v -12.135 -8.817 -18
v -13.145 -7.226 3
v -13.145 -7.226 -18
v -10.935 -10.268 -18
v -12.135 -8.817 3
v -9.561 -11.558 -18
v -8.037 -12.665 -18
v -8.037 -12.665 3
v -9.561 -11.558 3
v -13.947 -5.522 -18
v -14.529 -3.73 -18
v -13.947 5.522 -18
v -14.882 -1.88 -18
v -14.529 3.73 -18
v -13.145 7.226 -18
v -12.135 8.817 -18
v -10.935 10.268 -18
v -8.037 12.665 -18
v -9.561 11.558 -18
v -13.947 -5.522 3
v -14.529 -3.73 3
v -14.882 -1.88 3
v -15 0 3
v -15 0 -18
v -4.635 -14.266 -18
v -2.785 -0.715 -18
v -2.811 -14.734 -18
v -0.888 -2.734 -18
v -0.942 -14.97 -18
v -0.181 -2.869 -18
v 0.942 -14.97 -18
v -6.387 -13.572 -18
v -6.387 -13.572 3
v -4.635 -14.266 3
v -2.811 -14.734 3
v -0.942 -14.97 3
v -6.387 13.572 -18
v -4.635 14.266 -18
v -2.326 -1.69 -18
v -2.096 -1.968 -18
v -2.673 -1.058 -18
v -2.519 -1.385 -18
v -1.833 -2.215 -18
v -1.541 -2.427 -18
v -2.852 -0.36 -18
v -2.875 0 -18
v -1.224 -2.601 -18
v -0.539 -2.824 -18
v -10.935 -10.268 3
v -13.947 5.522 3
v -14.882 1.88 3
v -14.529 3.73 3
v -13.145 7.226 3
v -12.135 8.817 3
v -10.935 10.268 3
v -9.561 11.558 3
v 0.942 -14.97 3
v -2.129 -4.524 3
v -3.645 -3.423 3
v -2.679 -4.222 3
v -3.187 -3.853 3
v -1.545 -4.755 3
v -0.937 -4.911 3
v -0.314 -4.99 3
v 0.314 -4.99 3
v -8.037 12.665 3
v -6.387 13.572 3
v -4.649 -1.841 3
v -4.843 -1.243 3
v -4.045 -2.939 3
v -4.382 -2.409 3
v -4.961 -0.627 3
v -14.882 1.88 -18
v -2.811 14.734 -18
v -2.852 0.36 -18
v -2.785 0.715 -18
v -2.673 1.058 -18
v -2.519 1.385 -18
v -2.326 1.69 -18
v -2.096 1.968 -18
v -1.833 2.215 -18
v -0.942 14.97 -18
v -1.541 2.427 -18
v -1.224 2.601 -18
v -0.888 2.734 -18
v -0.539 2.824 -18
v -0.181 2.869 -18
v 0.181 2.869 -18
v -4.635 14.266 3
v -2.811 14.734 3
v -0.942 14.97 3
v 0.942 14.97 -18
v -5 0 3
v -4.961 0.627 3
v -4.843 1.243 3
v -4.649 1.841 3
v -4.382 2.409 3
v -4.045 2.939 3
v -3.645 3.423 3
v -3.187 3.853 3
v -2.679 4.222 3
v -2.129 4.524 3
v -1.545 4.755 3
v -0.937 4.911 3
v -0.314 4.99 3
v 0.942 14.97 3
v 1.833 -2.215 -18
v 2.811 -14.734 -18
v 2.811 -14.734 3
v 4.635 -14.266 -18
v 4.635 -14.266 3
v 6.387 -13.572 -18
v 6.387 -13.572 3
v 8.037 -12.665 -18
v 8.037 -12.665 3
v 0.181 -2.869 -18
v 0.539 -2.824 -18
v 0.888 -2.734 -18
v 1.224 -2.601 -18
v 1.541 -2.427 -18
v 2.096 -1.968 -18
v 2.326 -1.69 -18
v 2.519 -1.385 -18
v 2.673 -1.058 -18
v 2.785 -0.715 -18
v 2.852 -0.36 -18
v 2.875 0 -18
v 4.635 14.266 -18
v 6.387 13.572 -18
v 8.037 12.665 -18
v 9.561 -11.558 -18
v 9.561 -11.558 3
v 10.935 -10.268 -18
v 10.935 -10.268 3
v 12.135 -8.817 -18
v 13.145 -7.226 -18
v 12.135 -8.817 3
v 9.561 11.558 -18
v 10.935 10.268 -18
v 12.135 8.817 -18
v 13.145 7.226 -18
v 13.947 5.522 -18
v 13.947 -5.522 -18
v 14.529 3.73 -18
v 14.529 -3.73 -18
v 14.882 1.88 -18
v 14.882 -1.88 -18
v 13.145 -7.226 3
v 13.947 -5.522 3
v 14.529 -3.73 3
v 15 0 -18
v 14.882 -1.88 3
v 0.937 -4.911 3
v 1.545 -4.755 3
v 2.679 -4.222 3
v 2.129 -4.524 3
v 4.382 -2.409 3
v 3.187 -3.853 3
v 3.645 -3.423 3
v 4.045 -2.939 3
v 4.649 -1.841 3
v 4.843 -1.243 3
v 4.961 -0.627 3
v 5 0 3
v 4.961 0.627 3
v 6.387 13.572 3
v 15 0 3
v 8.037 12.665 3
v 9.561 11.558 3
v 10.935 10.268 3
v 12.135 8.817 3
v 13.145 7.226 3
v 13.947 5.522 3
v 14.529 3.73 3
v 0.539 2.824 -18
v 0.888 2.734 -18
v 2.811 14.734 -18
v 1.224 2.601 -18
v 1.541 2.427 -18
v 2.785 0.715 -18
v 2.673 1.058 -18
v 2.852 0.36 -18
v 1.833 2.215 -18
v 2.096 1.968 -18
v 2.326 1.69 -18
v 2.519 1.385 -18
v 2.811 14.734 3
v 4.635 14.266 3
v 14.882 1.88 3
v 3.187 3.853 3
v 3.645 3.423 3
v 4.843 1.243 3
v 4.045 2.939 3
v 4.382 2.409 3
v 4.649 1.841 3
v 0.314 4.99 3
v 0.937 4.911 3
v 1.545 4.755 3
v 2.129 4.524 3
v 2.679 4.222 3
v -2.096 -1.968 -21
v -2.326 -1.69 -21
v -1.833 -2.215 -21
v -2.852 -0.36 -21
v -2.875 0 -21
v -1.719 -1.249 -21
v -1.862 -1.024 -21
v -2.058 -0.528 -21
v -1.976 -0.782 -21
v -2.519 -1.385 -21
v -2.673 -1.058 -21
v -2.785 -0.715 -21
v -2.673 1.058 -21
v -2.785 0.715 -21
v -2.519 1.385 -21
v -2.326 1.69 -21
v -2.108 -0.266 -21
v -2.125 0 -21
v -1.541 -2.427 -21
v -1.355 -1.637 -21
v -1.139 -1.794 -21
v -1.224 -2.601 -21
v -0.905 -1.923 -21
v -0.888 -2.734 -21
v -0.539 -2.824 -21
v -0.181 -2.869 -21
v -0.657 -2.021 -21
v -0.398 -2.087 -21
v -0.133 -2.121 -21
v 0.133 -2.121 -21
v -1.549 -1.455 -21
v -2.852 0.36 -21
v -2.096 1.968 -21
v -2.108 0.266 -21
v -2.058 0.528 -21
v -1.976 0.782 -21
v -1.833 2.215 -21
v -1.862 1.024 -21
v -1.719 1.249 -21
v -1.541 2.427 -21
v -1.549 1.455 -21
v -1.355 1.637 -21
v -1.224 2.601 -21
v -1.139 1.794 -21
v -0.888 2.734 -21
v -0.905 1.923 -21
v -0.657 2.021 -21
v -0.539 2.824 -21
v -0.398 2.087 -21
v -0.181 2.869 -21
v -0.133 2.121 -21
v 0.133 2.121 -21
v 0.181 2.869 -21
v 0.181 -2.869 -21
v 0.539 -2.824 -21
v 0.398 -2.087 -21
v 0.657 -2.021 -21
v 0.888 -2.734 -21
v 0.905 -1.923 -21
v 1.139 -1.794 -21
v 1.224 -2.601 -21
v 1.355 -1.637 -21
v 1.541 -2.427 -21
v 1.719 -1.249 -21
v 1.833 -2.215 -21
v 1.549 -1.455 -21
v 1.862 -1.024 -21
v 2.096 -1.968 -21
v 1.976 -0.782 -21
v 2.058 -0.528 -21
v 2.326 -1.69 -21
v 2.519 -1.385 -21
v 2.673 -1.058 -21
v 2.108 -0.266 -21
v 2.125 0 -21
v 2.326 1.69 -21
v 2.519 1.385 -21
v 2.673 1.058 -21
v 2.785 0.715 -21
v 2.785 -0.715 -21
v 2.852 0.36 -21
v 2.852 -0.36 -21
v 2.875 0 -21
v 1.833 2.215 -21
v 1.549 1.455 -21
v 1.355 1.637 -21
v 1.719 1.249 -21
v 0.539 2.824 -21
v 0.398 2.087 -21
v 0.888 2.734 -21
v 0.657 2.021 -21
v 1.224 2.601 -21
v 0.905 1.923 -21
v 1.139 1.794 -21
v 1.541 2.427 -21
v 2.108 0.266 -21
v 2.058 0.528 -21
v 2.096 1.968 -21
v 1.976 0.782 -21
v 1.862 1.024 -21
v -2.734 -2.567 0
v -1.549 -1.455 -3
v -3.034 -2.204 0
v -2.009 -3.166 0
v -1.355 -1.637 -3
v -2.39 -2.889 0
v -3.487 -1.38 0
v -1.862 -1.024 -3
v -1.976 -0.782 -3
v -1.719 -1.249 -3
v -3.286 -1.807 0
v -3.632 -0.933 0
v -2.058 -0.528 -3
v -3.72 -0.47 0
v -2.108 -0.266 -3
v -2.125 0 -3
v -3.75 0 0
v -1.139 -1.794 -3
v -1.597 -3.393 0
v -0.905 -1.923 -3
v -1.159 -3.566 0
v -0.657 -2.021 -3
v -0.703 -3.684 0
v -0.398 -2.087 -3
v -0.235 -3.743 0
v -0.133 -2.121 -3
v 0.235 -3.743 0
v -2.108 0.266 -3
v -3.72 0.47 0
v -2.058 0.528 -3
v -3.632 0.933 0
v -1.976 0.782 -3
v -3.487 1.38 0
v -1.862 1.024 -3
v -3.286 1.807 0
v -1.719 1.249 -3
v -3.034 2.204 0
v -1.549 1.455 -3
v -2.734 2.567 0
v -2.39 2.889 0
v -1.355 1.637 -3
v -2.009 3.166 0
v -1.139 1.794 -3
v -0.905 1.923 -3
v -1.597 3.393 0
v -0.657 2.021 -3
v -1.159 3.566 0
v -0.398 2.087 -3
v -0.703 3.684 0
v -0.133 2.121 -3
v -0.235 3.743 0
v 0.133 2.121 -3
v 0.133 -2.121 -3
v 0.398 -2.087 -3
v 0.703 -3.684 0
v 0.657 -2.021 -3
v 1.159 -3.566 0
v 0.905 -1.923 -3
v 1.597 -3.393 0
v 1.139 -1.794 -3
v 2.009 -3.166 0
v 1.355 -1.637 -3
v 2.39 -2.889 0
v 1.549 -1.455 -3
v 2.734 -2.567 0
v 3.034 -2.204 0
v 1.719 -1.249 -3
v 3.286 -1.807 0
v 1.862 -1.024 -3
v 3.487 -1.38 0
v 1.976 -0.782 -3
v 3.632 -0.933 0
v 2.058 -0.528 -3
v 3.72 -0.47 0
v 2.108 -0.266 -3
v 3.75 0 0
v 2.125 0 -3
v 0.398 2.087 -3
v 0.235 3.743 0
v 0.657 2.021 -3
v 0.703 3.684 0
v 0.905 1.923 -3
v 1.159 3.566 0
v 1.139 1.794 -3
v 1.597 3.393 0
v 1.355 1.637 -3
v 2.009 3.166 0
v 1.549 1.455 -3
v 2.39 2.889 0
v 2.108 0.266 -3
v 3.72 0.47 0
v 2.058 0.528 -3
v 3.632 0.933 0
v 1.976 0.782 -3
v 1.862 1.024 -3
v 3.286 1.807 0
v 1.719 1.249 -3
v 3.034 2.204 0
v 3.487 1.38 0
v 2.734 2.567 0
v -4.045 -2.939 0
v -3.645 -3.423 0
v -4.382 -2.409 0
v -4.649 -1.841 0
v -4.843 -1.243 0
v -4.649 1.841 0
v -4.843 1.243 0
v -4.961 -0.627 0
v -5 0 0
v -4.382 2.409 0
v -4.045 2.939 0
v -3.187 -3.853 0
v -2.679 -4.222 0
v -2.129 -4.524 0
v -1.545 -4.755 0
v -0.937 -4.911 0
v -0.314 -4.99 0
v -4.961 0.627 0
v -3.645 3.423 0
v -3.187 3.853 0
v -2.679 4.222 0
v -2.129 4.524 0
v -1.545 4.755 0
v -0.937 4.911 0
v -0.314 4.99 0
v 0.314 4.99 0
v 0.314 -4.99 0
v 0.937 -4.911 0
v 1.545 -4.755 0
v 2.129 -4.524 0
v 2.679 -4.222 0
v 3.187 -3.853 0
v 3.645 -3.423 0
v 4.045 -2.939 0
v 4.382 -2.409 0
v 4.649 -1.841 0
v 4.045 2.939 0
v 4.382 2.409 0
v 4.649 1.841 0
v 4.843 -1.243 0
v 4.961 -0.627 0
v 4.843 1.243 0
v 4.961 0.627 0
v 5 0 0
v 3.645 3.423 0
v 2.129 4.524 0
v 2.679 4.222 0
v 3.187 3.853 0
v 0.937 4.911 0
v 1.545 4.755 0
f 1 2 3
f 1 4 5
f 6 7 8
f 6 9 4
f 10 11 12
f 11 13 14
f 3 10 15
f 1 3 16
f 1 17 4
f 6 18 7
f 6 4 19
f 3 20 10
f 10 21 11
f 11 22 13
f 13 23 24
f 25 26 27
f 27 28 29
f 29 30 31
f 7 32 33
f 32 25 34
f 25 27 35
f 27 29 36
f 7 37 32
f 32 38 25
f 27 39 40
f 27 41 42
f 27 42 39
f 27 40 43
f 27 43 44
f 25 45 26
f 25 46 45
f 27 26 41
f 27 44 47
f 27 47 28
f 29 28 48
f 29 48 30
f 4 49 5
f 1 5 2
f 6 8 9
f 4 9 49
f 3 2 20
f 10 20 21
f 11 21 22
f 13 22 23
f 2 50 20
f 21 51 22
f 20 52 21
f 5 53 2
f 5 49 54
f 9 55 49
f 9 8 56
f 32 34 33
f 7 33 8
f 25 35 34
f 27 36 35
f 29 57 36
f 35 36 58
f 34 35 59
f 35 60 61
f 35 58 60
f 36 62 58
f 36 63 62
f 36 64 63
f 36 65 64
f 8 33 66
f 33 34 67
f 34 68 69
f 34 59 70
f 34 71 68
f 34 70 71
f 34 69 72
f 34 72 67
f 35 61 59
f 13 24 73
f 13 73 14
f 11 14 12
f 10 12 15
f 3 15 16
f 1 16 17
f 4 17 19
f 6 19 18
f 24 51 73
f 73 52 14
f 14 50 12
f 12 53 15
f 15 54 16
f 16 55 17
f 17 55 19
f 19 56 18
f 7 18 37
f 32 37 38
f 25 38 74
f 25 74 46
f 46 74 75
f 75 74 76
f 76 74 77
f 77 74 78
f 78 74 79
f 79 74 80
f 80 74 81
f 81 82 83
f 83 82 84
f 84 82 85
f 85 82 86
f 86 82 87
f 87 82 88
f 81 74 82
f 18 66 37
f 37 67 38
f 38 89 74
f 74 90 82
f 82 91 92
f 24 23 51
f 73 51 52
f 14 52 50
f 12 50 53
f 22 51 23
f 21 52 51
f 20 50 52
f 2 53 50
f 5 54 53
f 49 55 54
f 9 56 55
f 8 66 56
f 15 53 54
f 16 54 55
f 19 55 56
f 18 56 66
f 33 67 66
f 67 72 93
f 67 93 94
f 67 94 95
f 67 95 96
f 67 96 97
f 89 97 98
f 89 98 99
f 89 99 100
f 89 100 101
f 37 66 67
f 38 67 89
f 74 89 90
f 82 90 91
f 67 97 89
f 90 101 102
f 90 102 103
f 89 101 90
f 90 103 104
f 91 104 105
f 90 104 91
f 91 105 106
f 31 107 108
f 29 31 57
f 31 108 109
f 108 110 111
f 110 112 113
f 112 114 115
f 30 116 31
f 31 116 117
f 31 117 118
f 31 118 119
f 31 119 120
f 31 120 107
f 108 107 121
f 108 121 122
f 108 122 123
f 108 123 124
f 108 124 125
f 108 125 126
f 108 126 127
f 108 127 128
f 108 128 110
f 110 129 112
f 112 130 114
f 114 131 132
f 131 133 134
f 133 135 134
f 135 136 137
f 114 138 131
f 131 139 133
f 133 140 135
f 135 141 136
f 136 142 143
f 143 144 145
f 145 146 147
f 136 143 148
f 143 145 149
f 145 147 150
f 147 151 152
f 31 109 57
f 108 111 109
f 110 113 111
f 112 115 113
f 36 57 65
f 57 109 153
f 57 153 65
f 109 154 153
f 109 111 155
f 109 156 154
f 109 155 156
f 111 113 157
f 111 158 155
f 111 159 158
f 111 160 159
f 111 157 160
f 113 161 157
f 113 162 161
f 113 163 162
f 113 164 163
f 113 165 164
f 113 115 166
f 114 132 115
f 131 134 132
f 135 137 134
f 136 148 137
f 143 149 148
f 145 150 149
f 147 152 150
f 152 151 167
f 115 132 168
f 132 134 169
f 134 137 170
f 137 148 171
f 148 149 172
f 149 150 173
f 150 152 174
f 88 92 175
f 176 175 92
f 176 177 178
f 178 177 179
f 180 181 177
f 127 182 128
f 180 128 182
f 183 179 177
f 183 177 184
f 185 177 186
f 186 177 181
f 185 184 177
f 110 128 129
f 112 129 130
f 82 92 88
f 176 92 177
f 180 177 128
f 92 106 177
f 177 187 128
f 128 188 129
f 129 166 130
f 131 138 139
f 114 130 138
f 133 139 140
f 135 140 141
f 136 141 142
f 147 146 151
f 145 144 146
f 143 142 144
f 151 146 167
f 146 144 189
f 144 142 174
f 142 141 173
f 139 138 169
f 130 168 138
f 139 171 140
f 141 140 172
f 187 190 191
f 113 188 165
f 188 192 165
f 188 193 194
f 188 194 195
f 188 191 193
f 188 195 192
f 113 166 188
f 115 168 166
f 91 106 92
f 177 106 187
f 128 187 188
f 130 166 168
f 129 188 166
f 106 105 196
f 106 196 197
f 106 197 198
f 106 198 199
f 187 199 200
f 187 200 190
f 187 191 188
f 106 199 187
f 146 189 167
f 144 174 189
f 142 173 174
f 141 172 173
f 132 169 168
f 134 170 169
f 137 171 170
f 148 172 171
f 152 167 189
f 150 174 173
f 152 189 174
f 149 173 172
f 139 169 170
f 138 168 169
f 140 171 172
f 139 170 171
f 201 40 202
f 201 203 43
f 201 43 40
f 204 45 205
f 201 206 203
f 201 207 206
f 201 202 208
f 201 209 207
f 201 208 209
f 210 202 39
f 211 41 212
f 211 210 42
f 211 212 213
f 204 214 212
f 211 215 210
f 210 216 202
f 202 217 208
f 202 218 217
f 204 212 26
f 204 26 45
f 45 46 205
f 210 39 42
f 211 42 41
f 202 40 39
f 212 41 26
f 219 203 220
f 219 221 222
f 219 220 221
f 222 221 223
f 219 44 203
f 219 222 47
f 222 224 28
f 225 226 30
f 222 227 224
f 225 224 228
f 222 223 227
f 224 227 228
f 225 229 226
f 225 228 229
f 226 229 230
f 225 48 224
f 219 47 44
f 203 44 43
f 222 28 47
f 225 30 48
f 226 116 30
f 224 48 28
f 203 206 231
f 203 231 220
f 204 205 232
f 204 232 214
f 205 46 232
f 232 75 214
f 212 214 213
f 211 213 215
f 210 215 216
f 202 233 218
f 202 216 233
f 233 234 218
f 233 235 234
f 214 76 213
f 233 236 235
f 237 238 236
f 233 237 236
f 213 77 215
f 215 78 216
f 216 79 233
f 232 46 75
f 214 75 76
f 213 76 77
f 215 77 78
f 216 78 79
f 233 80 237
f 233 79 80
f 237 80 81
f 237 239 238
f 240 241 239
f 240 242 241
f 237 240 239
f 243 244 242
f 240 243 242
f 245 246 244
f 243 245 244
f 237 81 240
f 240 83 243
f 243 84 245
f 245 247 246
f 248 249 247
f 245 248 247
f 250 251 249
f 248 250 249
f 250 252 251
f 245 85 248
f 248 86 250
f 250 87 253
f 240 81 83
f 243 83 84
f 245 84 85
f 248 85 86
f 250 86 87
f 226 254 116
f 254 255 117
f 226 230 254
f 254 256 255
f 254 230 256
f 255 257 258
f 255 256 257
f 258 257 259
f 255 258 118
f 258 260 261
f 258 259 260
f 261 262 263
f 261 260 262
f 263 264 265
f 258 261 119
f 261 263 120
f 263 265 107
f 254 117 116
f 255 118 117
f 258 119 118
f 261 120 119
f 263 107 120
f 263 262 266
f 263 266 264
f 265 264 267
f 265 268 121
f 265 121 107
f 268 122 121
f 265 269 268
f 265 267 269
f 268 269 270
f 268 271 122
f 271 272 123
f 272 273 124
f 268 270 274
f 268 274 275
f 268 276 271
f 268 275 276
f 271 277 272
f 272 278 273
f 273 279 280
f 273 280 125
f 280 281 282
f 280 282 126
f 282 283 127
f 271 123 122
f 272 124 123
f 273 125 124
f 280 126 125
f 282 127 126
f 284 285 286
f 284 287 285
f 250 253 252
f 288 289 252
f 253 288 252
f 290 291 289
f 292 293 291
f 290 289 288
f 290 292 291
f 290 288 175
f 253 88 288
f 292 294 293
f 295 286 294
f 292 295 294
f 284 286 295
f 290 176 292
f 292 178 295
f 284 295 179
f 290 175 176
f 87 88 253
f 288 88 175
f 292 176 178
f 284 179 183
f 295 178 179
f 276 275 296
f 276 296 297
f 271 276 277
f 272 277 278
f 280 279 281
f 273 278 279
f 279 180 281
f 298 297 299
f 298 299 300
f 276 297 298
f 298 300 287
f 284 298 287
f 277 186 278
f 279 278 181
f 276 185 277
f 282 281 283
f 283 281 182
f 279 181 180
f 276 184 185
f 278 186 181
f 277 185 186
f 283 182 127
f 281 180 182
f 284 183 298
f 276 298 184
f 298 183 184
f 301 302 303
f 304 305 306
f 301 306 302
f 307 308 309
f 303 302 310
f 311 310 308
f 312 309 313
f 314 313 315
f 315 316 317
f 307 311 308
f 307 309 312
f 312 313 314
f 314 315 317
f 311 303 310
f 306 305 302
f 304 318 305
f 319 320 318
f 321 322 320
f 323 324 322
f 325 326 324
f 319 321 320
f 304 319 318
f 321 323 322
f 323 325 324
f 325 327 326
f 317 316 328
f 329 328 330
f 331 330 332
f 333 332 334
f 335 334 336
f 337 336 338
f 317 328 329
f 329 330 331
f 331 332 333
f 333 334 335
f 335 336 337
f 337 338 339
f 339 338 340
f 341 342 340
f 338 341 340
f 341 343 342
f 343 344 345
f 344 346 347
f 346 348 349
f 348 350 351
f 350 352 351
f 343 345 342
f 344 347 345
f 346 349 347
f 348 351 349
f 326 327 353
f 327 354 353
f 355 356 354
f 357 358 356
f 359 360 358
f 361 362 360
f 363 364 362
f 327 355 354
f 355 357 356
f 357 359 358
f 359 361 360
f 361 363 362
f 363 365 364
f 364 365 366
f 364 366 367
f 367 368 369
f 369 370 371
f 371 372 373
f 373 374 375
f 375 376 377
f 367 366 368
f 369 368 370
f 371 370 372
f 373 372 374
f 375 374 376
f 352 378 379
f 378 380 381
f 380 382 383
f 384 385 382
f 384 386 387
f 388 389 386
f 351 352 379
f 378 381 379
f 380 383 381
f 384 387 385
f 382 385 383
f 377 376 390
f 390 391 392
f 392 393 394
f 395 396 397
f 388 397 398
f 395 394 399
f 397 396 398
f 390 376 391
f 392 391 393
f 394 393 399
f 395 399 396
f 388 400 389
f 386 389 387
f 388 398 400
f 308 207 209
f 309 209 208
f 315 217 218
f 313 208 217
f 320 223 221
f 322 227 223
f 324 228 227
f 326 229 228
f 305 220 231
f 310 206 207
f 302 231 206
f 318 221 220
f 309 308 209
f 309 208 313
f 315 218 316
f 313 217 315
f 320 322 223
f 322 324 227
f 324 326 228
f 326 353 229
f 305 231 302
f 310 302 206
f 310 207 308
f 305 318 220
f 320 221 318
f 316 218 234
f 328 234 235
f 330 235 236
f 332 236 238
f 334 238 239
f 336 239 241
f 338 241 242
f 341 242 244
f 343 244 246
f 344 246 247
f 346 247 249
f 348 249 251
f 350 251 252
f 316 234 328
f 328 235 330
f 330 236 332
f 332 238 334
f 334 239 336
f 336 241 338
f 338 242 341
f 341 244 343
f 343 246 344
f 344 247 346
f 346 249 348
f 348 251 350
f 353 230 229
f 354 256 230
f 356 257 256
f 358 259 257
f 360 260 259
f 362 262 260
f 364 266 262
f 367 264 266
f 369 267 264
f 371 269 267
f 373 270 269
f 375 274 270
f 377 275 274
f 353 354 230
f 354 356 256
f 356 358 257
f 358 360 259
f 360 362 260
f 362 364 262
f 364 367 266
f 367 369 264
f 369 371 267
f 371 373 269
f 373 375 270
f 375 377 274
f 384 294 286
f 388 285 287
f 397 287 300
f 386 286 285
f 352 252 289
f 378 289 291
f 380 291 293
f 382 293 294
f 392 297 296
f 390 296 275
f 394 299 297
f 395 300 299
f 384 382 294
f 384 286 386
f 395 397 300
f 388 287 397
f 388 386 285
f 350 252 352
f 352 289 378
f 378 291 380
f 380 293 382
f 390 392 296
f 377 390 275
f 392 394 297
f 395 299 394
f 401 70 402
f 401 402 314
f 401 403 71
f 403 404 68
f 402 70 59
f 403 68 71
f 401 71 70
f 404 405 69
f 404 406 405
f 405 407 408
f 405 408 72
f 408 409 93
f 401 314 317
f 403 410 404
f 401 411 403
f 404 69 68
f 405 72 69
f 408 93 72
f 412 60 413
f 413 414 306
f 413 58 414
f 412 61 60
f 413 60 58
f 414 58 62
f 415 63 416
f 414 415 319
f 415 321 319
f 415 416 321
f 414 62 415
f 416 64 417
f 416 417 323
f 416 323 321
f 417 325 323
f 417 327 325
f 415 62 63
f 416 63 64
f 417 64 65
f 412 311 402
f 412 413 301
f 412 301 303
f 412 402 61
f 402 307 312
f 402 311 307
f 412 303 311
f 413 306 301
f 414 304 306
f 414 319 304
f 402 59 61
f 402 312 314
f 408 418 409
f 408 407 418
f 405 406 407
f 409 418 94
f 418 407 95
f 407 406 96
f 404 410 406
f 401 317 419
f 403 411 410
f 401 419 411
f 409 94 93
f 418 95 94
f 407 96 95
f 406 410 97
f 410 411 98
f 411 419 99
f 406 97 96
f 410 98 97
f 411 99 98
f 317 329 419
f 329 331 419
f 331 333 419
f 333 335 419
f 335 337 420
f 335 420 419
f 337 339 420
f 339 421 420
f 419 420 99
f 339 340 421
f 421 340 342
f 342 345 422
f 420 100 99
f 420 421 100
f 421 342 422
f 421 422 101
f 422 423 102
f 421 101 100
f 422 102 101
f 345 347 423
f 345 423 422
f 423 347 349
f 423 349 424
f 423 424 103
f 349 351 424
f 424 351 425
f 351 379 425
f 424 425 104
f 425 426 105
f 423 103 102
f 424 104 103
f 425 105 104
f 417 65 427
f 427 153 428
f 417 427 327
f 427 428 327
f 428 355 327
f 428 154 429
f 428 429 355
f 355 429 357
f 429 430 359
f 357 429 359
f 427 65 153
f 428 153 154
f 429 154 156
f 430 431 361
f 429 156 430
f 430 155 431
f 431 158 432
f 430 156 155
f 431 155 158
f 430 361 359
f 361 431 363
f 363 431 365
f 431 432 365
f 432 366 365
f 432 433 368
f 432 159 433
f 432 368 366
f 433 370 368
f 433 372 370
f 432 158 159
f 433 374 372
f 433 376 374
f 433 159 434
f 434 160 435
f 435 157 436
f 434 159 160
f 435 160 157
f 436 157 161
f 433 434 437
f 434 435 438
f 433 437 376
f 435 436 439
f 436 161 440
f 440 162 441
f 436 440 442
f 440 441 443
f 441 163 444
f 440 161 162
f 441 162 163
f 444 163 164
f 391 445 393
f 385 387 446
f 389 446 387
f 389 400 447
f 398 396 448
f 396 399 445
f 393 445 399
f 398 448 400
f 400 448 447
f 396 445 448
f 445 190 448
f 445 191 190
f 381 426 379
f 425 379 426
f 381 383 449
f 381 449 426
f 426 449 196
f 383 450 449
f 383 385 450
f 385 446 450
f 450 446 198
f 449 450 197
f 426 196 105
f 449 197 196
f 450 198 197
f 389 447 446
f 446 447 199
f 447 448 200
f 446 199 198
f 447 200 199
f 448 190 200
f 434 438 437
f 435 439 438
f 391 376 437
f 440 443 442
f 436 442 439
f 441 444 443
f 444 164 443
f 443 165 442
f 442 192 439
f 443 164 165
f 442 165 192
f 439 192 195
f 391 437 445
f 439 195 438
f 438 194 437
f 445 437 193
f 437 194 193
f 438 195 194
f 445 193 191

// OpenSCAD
$fn = 50;

difference() {
	union() {
		translate(v = [0, 0, -18.0]) {
			cylinder(h = 21, r = 15.0);
		}
		#translate(v = [0, 0, -21.0]) {
			cylinder(h = 21, r = 2.875);
		}
	}
	union() {
		translate(v = [0, 0, 0]) {
			rotate(a = [0, 0, 0]) {
				difference() {
					union() {
						translate(v = [0, 0, -21.0]) {
							cylinder(h = 21, r = 2.0);
						}
						translate(v = [0, 0, -3]) {
							cylinder(h = 3, r1 = 2.125, r2 = 3.75);
						}
						translate(v = [0, 0, -21.0]) {
							cylinder(h = 21, r = 2.125);
						}
						translate(v = [0, 0, -21.0]) {
							cylinder(h = 21, r = 2.0);
						}
					}
					union();
				}
			}
		}
		#cylinder(h = 3, r = 5.0);
	}
}
